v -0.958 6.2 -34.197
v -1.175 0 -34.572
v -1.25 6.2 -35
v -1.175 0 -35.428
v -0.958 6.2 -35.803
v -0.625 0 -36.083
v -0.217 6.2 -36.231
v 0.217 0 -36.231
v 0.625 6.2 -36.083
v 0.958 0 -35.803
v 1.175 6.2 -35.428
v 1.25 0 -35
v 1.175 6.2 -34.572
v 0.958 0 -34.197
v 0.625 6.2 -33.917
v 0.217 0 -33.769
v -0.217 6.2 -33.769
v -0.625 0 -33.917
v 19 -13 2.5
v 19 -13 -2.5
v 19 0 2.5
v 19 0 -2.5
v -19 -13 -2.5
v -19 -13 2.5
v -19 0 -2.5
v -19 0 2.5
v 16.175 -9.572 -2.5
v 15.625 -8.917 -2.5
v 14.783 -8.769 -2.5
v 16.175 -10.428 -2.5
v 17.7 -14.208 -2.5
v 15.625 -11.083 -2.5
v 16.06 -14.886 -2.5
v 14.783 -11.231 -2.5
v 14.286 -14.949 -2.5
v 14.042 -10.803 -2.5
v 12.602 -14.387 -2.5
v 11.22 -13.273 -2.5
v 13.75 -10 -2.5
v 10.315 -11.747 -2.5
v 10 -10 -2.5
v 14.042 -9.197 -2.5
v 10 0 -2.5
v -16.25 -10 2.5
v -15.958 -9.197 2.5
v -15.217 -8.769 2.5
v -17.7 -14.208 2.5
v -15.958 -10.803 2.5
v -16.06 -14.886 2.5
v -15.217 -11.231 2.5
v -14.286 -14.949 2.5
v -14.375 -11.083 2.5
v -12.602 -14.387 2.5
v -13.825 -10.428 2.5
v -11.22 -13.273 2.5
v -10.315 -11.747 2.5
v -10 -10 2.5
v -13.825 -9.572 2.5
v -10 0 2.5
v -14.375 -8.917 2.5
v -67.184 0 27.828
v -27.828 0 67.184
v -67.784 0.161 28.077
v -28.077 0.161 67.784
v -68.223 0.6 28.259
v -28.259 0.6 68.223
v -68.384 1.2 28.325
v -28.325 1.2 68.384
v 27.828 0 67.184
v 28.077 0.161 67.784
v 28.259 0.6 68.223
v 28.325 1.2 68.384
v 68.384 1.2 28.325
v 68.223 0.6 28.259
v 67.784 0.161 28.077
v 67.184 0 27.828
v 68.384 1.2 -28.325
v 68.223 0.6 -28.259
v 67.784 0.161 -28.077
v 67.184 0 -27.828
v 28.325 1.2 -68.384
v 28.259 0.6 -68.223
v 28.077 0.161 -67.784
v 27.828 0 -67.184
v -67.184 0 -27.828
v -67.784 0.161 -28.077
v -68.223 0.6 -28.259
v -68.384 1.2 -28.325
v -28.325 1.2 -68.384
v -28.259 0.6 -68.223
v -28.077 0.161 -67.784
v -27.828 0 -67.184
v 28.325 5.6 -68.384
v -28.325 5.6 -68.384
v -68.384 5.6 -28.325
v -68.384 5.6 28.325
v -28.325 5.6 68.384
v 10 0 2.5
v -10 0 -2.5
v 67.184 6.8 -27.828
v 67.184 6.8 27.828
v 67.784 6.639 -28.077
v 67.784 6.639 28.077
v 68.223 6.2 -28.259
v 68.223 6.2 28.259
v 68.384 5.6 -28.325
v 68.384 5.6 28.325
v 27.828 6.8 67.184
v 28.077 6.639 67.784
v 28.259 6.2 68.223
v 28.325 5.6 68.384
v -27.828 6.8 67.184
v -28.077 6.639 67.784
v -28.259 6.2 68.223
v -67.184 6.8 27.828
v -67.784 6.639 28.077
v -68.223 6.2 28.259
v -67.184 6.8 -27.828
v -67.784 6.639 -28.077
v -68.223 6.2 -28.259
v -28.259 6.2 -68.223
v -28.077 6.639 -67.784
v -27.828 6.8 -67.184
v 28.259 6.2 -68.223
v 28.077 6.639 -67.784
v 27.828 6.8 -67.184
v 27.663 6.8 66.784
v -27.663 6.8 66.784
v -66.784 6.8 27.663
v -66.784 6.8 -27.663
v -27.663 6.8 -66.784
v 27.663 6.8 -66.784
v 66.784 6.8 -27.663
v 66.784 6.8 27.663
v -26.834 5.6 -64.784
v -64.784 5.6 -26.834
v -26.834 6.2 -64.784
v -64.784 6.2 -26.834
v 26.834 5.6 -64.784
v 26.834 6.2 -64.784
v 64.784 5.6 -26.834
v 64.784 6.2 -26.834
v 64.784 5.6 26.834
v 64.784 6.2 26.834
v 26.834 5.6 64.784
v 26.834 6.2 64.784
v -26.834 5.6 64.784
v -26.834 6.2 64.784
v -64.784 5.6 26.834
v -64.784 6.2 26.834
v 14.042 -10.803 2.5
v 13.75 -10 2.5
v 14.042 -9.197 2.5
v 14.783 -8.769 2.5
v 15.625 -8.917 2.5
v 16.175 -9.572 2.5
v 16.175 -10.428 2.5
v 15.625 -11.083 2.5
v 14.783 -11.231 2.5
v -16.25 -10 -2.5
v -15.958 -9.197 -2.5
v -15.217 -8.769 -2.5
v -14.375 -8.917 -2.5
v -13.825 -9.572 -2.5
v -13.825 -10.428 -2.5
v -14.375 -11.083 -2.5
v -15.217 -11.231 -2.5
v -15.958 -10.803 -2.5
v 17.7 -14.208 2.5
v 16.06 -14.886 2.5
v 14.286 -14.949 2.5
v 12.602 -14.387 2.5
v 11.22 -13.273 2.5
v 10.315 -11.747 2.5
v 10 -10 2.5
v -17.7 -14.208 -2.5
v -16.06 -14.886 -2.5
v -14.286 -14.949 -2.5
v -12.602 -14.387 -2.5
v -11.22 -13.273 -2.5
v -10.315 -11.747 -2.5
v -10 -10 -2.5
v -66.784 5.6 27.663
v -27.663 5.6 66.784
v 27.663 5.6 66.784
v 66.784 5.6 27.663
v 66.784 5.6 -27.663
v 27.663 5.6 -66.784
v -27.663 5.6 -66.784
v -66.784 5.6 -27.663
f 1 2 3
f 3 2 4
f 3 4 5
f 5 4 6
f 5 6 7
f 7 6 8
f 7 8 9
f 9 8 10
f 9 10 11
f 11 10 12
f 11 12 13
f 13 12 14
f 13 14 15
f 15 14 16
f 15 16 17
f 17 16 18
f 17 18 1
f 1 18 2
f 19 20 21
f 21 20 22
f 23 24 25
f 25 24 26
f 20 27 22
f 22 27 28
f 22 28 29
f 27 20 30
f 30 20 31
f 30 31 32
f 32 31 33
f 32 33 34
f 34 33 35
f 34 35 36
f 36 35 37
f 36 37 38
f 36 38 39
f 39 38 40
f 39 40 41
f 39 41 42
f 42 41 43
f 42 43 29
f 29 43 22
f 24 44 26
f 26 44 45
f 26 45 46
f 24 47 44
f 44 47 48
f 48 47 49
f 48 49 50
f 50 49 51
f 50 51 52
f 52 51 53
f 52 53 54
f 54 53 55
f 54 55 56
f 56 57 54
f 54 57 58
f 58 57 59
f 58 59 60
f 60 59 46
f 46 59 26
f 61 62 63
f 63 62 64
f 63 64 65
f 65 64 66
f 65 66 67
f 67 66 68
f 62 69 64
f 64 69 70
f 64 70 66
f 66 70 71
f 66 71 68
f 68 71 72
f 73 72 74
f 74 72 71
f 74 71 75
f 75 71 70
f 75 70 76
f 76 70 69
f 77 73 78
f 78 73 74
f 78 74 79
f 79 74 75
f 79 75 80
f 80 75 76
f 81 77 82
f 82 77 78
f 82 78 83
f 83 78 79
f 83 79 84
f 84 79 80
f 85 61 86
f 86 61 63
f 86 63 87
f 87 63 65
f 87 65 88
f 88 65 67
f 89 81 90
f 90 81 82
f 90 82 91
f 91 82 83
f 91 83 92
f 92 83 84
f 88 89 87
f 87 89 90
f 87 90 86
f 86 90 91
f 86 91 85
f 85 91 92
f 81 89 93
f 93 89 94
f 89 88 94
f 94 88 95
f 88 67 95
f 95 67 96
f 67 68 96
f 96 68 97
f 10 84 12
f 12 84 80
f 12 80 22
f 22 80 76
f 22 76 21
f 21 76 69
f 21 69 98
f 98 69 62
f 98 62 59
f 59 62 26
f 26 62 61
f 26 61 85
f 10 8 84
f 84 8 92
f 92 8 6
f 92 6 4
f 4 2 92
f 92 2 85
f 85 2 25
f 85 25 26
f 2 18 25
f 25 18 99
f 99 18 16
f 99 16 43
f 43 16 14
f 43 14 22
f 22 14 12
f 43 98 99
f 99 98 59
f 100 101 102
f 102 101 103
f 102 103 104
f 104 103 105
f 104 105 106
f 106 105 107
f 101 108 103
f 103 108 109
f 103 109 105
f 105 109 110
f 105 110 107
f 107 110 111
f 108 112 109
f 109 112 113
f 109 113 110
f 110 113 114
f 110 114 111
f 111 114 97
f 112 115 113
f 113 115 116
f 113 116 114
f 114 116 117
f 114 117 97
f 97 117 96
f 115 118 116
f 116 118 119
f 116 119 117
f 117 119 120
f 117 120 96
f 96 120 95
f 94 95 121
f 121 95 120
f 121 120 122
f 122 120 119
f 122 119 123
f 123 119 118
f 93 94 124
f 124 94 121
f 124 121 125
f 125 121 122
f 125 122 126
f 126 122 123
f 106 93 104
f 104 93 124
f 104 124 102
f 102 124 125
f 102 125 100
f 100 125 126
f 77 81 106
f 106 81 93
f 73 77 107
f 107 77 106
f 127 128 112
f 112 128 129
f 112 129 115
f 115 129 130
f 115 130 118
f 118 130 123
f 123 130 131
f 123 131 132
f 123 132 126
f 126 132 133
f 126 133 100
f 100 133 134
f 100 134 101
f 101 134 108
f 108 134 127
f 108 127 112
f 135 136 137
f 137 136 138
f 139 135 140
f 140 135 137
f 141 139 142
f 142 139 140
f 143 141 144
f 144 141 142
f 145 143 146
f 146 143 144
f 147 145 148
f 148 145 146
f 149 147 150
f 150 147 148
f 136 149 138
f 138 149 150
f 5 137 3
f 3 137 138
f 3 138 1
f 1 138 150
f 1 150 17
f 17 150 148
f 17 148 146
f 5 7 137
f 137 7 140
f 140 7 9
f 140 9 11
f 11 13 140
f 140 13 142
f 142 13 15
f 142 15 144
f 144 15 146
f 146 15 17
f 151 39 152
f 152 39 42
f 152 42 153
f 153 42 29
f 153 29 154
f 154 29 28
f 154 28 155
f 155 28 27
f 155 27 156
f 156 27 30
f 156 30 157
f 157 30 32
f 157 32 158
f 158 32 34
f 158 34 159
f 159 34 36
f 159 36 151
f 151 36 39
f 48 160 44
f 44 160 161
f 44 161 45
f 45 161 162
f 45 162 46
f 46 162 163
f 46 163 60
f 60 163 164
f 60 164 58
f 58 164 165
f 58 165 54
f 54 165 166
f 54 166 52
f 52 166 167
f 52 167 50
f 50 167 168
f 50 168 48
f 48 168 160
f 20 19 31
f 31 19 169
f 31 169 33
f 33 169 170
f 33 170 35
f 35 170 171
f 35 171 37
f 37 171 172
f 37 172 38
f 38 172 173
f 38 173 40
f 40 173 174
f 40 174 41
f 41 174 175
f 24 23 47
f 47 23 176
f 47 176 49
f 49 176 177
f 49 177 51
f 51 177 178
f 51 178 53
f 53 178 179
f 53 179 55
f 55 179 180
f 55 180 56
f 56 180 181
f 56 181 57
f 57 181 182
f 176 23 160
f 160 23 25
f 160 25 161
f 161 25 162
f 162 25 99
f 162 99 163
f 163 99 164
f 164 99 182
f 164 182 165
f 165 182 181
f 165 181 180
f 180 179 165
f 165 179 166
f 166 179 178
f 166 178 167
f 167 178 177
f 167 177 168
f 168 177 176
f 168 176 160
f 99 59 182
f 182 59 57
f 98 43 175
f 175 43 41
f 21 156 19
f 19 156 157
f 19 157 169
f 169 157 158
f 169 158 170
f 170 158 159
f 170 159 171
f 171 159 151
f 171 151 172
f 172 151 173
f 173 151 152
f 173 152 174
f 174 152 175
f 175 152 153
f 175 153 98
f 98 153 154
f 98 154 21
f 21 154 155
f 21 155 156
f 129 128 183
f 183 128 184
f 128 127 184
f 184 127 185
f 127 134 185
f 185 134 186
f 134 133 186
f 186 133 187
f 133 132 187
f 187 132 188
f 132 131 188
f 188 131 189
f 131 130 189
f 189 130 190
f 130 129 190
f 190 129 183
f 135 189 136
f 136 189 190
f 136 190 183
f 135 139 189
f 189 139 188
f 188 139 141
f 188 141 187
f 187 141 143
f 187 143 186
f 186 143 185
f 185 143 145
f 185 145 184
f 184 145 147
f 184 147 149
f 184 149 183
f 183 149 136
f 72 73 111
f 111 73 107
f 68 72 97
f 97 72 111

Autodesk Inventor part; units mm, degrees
ref_plane "YZ Plane" through (0, 0, 0) normal (1, 0, 0) x (0, 1, 0)
ref_plane "XZ Plane" through (0, 0, 0) normal (0, 1, 0) x (-1, 0, 0)
ref_plane "XY Plane" through (0, 0, 0) normal (0, 0, 1) x (1, 0, 0)
sketch "스케치3" plane through (0, 0, 0) normal (0, 1, 0) x (-1, 0, 0)
  line L0 (68.3838, -28.3255) -> (28.3255, -68.3838)
  line L1 (28.3255, -68.3838) -> (-28.3255, -68.3838)
  line L2 (-28.3255, -68.3838) -> (-68.3838, -28.3255)
  line L3 (-68.3838, -28.3255) -> (-68.3838, 28.3255)
  line L4 (-68.3838, 28.3255) -> (-28.3255, 68.3838)
  line L5 (-28.3255, 68.3838) -> (28.3255, 68.3838)
  line L6 (28.3255, 68.3838) -> (68.3838, 28.3255)
  line L7 (68.3838, 28.3255) -> (68.3838, -28.3255)
  line L8 (65.1838, -27) -> (27, -65.1838)
  line L9 (27, -65.1838) -> (-27, -65.1838)
  line L10 (-27, -65.1838) -> (-65.1838, -27)
  line L11 (-65.1838, -27) -> (-65.1838, 27)
  line L12 (-65.1838, 27) -> (-27, 65.1838)
  line L13 (-27, 65.1838) -> (27, 65.1838)
  line L14 (27, 65.1838) -> (65.1838, 27)
  line L15 (65.1838, 27) -> (65.1838, -27)
  point P0 (0, 0)
  point P1 (0, 0)
  point P2 (0, 0)
  point P3 (0, 0)
  dimension "d43" = 54
  dimension "d44" = 3.2
extrude "돌출2" add sketch "스케치3" along normal blind 6.8 contours L0 L1 L2 L3 L4 L5 L6 L7 | L8 L9 L10 L11 L12 L13 L14 L15
sketch "스케치4" plane through (0, 6.8, 0) normal (0, 1, 0) x (1, 0, 0)
  line L0 (26.9172, -64.9838) -> (-26.9172, -64.9838)
  line L1 (-26.9172, -64.9838) -> (-64.9838, -26.9172)
  line L2 (-64.9838, -26.9172) -> (-64.9838, 26.9172)
  line L3 (-64.9838, 26.9172) -> (-26.9172, 64.9838)
  line L4 (-26.9172, 64.9838) -> (26.9172, 64.9838)
  line L5 (26.9172, 64.9838) -> (64.9838, 26.9172)
  line L6 (64.9838, 26.9172) -> (64.9838, -26.9172)
  line L7 (64.9838, -26.9172) -> (26.9172, -64.9838)
  line L8 (-27.6627, 66.7838) -> (27.6627, 66.7838)
  line L9 (27.6627, 66.7838) -> (66.7838, 27.6627)
  line L10 (66.7838, 27.6627) -> (66.7838, -27.6627)
  line L11 (66.7838, -27.6627) -> (27.6627, -66.7838)
  line L12 (27.6627, -66.7838) -> (-27.6627, -66.7838)
  line L13 (-27.6627, -66.7838) -> (-66.7838, -27.6627)
  line L14 (-66.7838, -27.6627) -> (-66.7838, 27.6627)
  line L15 (-66.7838, 27.6627) -> (-27.6627, 66.7838)
  line L16 (-26.8343, 64.7838) -> (26.8343, 64.7838)
  line L17 (26.8343, 64.7838) -> (64.7838, 26.8343)
  line L18 (64.7838, 26.8343) -> (64.7838, -26.8343)
  line L19 (64.7838, -26.8343) -> (26.8343, -64.7838)
  line L20 (26.8343, -64.7838) -> (-26.8343, -64.7838)
  line L21 (-26.8343, -64.7838) -> (-64.7838, -26.8343)
  line L22 (-64.7838, -26.8343) -> (-64.7838, 26.8343)
  line L23 (-64.7838, 26.8343) -> (-26.8343, 64.7838)
  line L24 (-68.3838, 28.3255) -> (-68.3838, -28.3255) projected
  point P0 (0, 0)
  point P1 (0, 0)
  point P2 (0, 0)
  point P3 (0, 0)
  dimension "d42" = 1.8
  dimension "d45" = 0.2
  dimension "d60" = 1.6
extrude "돌출3" cut sketch "스케치4" against normal blind 1.2 contours L0 L1 L2 L3 L4 L5 L6 L7 | L8 L9 L10 L11 L12 L13 L14 L15 | L16 L17 L18 L19 L20 L21 L22 L23
sketch "스케치5" plane through (0, 0, 0) normal (0, -1, 0) x (1, 0, 0)
  line L0 (10, 2.5) -> (20, 2.5)
  line L1 (20, 2.5) -> (20, -2.5)
  line L2 (20, -2.5) -> (10, -2.5)
  line L3 (10, -2.5) -> (10, 2.5)
  line L4 (10, 2.5) -> (20, -2.5) construction
  line L5 (20, 2.5) -> (10, -2.5) construction
  line L6 (-20, 2.5) -> (-10, 2.5)
  line L7 (-10, 2.5) -> (-10, -2.5)
  line L8 (-10, -2.5) -> (-20, -2.5)
  line L9 (-20, -2.5) -> (-20, 2.5)
  line L10 (-20, 2.5) -> (-10, -2.5) construction
  line L11 (-10, 2.5) -> (-20, -2.5) construction
  point P0 (0, 0)
  point P1 (15, 0)
  point P2 (-15, 0)
  dimension "d11" = 10
  dimension "d12" = 5
  dimension "d13" = 10
  dimension "d16" = 30
extrude "돌출4" add sketch "스케치5" along normal blind 10
sketch "스케치6" plane through (-10, 0, -2.5) normal (0, 0, -1) x (-1, 0, 0)
  circle A0 centre (5, -10) radius 5
  circle A1 centre (-25, -10) radius 5
  line L0 (-20, -10) -> (-30, -10) projected
  line L1 (10, -10) -> (0, -10) projected
  point P0 (-10, 0)
  dimension "d23" = 10
  dimension "d24" = 10
extrude "돌출5" add sketch "스케치6" against normal blind 5
sketch "스케치7" plane through (-10, 0, -2.5) normal (0, 0, -1) x (-1, 0, 0)
  circle A0 centre (5, -10) radius 1.25
  line L0 (10, 0) -> (10, -10) projected
  line L1 (0, 0) -> (10, 0) projected
  line L2 (4.7788, 0) -> (0, 0)
  circle A1 centre (-25, -10) radius 1.25
  point P0 (-10, 0)
  dimension "d27" = 2.5
  dimension "d28" = 5
  dimension "d31" = 30
extrude "돌출6" cut sketch "스케치7" against normal blind 5
sketch "스케치8" plane through (0, 0, 0) normal (0, -1, 0) x (1, 0, 0)
  circle A0 centre (0, -35) radius 1.25
  line L0 (-10, 2.5) -> (-10, -2.5) projected
  point P0 (0, 0)
  point P1 (-10, 0)
  dimension "d38" = 2.5
  dimension "d39" = 35
sketch "스케치9" plane through (0, 5.6, 0) normal (0, 1, 0) x (1, 0, 0)
  line L0 (-26.8343, 64.7838) -> (26.8343, 64.7838)
  line L1 (26.8343, 64.7838) -> (64.7838, 26.8343)
  line L2 (64.7838, 26.8343) -> (64.7838, -26.8343)
  line L3 (64.7838, -26.8343) -> (26.8343, -64.7838)
  line L4 (26.8343, -64.7838) -> (-26.8343, -64.7838)
  line L5 (-26.8343, -64.7838) -> (-64.7838, -26.8343)
  line L6 (-64.7838, -26.8343) -> (-64.7838, 26.8343)
  line L7 (-64.7838, 26.8343) -> (-26.8343, 64.7838)
  line L8 (-27.6627, 66.7838) -> (27.6627, 66.7838) projected
  line L9 (-25.5917, 61.7838) -> (25.5917, 61.7838)
  line L10 (25.5917, 61.7838) -> (61.7838, 25.5917)
  line L11 (61.7838, 25.5917) -> (61.7838, -25.5917)
  line L12 (61.7838, -25.5917) -> (25.5917, -61.7838)
  line L13 (25.5917, -61.7838) -> (-25.5917, -61.7838)
  line L14 (-25.5917, -61.7838) -> (-61.7838, -25.5917)
  line L15 (-61.7838, -25.5917) -> (-61.7838, 25.5917)
  line L16 (-61.7838, 25.5917) -> (-25.5917, 61.7838)
  point P0 (0, 0)
  point P1 (0, 0)
  point P2 (0, 0)
  dimension "d46" = 2
  dimension "d47" = 3
extrude "돌출8" add sketch "스케치9" along normal blind 0.6 contours L0 L1 L2 L3 L4 L5 L6 L7 | L9 L10 L11 L12 L13 L14 L15 L16
fillet "모깎기1" radius 1.2 16 edges at (-68.3838, 6.8, 0) (-48.3546, 6.8, 48.3546) (0, 6.8, 68.3838) (48.3546, 6.8, 48.3546) (68.3838, 6.8, 0) (48.3546, 6.8, -48.3546) (0, 6.8, -68.3838) (-48.3546, 6.8, -48.3546) (48.3546, 0, 48.3546) (0, 0, 68.3838) (-48.3546, 0, 48.3546) (-68.3838, 0, 0) (-48.3546, 0, -48.3546) (0, 0, -68.3838) (48.3546, 0, -48.3546) (68.3838, 0, 0)
sketch "스케치10" plane through (0, 0, 0) normal (0, -1, 0) x (1, 0, 0)
  line L0 (-20, 2.5) -> (-10, 2.5) projected
  line L1 (-10, -2.5) -> (-20, -2.5) projected
  line L2 (-20, 2.5) -> (-19, 2.5)
  line L3 (-19, 2.5) -> (-19, -2.5)
  line L4 (-19, -2.5) -> (-20, -2.5)
  line L5 (-20, -2.5) -> (-20, 2.5)
  line L6 (20, -2.5) -> (10, -2.5) projected
  line L7 (10, 2.5) -> (20, 2.5) projected
  line L8 (20, -2.5) -> (19, -2.5)
  line L9 (19, -2.5) -> (19, 2.5)
  line L10 (19, 2.5) -> (20, 2.5)
  line L11 (20, 2.5) -> (20, -2.5)
  point P0 (0, 0)
  dimension "d54" = 1
  dimension "d55" = 1
extrude "돌출9" cut sketch "스케치10" along normal blind 15
extrude "돌출10" cut sketch "스케치8" against normal up to surface (6.2 mm away)
equation "\"d55\" = d54"
properties part number "OV-PAM_top_2"
